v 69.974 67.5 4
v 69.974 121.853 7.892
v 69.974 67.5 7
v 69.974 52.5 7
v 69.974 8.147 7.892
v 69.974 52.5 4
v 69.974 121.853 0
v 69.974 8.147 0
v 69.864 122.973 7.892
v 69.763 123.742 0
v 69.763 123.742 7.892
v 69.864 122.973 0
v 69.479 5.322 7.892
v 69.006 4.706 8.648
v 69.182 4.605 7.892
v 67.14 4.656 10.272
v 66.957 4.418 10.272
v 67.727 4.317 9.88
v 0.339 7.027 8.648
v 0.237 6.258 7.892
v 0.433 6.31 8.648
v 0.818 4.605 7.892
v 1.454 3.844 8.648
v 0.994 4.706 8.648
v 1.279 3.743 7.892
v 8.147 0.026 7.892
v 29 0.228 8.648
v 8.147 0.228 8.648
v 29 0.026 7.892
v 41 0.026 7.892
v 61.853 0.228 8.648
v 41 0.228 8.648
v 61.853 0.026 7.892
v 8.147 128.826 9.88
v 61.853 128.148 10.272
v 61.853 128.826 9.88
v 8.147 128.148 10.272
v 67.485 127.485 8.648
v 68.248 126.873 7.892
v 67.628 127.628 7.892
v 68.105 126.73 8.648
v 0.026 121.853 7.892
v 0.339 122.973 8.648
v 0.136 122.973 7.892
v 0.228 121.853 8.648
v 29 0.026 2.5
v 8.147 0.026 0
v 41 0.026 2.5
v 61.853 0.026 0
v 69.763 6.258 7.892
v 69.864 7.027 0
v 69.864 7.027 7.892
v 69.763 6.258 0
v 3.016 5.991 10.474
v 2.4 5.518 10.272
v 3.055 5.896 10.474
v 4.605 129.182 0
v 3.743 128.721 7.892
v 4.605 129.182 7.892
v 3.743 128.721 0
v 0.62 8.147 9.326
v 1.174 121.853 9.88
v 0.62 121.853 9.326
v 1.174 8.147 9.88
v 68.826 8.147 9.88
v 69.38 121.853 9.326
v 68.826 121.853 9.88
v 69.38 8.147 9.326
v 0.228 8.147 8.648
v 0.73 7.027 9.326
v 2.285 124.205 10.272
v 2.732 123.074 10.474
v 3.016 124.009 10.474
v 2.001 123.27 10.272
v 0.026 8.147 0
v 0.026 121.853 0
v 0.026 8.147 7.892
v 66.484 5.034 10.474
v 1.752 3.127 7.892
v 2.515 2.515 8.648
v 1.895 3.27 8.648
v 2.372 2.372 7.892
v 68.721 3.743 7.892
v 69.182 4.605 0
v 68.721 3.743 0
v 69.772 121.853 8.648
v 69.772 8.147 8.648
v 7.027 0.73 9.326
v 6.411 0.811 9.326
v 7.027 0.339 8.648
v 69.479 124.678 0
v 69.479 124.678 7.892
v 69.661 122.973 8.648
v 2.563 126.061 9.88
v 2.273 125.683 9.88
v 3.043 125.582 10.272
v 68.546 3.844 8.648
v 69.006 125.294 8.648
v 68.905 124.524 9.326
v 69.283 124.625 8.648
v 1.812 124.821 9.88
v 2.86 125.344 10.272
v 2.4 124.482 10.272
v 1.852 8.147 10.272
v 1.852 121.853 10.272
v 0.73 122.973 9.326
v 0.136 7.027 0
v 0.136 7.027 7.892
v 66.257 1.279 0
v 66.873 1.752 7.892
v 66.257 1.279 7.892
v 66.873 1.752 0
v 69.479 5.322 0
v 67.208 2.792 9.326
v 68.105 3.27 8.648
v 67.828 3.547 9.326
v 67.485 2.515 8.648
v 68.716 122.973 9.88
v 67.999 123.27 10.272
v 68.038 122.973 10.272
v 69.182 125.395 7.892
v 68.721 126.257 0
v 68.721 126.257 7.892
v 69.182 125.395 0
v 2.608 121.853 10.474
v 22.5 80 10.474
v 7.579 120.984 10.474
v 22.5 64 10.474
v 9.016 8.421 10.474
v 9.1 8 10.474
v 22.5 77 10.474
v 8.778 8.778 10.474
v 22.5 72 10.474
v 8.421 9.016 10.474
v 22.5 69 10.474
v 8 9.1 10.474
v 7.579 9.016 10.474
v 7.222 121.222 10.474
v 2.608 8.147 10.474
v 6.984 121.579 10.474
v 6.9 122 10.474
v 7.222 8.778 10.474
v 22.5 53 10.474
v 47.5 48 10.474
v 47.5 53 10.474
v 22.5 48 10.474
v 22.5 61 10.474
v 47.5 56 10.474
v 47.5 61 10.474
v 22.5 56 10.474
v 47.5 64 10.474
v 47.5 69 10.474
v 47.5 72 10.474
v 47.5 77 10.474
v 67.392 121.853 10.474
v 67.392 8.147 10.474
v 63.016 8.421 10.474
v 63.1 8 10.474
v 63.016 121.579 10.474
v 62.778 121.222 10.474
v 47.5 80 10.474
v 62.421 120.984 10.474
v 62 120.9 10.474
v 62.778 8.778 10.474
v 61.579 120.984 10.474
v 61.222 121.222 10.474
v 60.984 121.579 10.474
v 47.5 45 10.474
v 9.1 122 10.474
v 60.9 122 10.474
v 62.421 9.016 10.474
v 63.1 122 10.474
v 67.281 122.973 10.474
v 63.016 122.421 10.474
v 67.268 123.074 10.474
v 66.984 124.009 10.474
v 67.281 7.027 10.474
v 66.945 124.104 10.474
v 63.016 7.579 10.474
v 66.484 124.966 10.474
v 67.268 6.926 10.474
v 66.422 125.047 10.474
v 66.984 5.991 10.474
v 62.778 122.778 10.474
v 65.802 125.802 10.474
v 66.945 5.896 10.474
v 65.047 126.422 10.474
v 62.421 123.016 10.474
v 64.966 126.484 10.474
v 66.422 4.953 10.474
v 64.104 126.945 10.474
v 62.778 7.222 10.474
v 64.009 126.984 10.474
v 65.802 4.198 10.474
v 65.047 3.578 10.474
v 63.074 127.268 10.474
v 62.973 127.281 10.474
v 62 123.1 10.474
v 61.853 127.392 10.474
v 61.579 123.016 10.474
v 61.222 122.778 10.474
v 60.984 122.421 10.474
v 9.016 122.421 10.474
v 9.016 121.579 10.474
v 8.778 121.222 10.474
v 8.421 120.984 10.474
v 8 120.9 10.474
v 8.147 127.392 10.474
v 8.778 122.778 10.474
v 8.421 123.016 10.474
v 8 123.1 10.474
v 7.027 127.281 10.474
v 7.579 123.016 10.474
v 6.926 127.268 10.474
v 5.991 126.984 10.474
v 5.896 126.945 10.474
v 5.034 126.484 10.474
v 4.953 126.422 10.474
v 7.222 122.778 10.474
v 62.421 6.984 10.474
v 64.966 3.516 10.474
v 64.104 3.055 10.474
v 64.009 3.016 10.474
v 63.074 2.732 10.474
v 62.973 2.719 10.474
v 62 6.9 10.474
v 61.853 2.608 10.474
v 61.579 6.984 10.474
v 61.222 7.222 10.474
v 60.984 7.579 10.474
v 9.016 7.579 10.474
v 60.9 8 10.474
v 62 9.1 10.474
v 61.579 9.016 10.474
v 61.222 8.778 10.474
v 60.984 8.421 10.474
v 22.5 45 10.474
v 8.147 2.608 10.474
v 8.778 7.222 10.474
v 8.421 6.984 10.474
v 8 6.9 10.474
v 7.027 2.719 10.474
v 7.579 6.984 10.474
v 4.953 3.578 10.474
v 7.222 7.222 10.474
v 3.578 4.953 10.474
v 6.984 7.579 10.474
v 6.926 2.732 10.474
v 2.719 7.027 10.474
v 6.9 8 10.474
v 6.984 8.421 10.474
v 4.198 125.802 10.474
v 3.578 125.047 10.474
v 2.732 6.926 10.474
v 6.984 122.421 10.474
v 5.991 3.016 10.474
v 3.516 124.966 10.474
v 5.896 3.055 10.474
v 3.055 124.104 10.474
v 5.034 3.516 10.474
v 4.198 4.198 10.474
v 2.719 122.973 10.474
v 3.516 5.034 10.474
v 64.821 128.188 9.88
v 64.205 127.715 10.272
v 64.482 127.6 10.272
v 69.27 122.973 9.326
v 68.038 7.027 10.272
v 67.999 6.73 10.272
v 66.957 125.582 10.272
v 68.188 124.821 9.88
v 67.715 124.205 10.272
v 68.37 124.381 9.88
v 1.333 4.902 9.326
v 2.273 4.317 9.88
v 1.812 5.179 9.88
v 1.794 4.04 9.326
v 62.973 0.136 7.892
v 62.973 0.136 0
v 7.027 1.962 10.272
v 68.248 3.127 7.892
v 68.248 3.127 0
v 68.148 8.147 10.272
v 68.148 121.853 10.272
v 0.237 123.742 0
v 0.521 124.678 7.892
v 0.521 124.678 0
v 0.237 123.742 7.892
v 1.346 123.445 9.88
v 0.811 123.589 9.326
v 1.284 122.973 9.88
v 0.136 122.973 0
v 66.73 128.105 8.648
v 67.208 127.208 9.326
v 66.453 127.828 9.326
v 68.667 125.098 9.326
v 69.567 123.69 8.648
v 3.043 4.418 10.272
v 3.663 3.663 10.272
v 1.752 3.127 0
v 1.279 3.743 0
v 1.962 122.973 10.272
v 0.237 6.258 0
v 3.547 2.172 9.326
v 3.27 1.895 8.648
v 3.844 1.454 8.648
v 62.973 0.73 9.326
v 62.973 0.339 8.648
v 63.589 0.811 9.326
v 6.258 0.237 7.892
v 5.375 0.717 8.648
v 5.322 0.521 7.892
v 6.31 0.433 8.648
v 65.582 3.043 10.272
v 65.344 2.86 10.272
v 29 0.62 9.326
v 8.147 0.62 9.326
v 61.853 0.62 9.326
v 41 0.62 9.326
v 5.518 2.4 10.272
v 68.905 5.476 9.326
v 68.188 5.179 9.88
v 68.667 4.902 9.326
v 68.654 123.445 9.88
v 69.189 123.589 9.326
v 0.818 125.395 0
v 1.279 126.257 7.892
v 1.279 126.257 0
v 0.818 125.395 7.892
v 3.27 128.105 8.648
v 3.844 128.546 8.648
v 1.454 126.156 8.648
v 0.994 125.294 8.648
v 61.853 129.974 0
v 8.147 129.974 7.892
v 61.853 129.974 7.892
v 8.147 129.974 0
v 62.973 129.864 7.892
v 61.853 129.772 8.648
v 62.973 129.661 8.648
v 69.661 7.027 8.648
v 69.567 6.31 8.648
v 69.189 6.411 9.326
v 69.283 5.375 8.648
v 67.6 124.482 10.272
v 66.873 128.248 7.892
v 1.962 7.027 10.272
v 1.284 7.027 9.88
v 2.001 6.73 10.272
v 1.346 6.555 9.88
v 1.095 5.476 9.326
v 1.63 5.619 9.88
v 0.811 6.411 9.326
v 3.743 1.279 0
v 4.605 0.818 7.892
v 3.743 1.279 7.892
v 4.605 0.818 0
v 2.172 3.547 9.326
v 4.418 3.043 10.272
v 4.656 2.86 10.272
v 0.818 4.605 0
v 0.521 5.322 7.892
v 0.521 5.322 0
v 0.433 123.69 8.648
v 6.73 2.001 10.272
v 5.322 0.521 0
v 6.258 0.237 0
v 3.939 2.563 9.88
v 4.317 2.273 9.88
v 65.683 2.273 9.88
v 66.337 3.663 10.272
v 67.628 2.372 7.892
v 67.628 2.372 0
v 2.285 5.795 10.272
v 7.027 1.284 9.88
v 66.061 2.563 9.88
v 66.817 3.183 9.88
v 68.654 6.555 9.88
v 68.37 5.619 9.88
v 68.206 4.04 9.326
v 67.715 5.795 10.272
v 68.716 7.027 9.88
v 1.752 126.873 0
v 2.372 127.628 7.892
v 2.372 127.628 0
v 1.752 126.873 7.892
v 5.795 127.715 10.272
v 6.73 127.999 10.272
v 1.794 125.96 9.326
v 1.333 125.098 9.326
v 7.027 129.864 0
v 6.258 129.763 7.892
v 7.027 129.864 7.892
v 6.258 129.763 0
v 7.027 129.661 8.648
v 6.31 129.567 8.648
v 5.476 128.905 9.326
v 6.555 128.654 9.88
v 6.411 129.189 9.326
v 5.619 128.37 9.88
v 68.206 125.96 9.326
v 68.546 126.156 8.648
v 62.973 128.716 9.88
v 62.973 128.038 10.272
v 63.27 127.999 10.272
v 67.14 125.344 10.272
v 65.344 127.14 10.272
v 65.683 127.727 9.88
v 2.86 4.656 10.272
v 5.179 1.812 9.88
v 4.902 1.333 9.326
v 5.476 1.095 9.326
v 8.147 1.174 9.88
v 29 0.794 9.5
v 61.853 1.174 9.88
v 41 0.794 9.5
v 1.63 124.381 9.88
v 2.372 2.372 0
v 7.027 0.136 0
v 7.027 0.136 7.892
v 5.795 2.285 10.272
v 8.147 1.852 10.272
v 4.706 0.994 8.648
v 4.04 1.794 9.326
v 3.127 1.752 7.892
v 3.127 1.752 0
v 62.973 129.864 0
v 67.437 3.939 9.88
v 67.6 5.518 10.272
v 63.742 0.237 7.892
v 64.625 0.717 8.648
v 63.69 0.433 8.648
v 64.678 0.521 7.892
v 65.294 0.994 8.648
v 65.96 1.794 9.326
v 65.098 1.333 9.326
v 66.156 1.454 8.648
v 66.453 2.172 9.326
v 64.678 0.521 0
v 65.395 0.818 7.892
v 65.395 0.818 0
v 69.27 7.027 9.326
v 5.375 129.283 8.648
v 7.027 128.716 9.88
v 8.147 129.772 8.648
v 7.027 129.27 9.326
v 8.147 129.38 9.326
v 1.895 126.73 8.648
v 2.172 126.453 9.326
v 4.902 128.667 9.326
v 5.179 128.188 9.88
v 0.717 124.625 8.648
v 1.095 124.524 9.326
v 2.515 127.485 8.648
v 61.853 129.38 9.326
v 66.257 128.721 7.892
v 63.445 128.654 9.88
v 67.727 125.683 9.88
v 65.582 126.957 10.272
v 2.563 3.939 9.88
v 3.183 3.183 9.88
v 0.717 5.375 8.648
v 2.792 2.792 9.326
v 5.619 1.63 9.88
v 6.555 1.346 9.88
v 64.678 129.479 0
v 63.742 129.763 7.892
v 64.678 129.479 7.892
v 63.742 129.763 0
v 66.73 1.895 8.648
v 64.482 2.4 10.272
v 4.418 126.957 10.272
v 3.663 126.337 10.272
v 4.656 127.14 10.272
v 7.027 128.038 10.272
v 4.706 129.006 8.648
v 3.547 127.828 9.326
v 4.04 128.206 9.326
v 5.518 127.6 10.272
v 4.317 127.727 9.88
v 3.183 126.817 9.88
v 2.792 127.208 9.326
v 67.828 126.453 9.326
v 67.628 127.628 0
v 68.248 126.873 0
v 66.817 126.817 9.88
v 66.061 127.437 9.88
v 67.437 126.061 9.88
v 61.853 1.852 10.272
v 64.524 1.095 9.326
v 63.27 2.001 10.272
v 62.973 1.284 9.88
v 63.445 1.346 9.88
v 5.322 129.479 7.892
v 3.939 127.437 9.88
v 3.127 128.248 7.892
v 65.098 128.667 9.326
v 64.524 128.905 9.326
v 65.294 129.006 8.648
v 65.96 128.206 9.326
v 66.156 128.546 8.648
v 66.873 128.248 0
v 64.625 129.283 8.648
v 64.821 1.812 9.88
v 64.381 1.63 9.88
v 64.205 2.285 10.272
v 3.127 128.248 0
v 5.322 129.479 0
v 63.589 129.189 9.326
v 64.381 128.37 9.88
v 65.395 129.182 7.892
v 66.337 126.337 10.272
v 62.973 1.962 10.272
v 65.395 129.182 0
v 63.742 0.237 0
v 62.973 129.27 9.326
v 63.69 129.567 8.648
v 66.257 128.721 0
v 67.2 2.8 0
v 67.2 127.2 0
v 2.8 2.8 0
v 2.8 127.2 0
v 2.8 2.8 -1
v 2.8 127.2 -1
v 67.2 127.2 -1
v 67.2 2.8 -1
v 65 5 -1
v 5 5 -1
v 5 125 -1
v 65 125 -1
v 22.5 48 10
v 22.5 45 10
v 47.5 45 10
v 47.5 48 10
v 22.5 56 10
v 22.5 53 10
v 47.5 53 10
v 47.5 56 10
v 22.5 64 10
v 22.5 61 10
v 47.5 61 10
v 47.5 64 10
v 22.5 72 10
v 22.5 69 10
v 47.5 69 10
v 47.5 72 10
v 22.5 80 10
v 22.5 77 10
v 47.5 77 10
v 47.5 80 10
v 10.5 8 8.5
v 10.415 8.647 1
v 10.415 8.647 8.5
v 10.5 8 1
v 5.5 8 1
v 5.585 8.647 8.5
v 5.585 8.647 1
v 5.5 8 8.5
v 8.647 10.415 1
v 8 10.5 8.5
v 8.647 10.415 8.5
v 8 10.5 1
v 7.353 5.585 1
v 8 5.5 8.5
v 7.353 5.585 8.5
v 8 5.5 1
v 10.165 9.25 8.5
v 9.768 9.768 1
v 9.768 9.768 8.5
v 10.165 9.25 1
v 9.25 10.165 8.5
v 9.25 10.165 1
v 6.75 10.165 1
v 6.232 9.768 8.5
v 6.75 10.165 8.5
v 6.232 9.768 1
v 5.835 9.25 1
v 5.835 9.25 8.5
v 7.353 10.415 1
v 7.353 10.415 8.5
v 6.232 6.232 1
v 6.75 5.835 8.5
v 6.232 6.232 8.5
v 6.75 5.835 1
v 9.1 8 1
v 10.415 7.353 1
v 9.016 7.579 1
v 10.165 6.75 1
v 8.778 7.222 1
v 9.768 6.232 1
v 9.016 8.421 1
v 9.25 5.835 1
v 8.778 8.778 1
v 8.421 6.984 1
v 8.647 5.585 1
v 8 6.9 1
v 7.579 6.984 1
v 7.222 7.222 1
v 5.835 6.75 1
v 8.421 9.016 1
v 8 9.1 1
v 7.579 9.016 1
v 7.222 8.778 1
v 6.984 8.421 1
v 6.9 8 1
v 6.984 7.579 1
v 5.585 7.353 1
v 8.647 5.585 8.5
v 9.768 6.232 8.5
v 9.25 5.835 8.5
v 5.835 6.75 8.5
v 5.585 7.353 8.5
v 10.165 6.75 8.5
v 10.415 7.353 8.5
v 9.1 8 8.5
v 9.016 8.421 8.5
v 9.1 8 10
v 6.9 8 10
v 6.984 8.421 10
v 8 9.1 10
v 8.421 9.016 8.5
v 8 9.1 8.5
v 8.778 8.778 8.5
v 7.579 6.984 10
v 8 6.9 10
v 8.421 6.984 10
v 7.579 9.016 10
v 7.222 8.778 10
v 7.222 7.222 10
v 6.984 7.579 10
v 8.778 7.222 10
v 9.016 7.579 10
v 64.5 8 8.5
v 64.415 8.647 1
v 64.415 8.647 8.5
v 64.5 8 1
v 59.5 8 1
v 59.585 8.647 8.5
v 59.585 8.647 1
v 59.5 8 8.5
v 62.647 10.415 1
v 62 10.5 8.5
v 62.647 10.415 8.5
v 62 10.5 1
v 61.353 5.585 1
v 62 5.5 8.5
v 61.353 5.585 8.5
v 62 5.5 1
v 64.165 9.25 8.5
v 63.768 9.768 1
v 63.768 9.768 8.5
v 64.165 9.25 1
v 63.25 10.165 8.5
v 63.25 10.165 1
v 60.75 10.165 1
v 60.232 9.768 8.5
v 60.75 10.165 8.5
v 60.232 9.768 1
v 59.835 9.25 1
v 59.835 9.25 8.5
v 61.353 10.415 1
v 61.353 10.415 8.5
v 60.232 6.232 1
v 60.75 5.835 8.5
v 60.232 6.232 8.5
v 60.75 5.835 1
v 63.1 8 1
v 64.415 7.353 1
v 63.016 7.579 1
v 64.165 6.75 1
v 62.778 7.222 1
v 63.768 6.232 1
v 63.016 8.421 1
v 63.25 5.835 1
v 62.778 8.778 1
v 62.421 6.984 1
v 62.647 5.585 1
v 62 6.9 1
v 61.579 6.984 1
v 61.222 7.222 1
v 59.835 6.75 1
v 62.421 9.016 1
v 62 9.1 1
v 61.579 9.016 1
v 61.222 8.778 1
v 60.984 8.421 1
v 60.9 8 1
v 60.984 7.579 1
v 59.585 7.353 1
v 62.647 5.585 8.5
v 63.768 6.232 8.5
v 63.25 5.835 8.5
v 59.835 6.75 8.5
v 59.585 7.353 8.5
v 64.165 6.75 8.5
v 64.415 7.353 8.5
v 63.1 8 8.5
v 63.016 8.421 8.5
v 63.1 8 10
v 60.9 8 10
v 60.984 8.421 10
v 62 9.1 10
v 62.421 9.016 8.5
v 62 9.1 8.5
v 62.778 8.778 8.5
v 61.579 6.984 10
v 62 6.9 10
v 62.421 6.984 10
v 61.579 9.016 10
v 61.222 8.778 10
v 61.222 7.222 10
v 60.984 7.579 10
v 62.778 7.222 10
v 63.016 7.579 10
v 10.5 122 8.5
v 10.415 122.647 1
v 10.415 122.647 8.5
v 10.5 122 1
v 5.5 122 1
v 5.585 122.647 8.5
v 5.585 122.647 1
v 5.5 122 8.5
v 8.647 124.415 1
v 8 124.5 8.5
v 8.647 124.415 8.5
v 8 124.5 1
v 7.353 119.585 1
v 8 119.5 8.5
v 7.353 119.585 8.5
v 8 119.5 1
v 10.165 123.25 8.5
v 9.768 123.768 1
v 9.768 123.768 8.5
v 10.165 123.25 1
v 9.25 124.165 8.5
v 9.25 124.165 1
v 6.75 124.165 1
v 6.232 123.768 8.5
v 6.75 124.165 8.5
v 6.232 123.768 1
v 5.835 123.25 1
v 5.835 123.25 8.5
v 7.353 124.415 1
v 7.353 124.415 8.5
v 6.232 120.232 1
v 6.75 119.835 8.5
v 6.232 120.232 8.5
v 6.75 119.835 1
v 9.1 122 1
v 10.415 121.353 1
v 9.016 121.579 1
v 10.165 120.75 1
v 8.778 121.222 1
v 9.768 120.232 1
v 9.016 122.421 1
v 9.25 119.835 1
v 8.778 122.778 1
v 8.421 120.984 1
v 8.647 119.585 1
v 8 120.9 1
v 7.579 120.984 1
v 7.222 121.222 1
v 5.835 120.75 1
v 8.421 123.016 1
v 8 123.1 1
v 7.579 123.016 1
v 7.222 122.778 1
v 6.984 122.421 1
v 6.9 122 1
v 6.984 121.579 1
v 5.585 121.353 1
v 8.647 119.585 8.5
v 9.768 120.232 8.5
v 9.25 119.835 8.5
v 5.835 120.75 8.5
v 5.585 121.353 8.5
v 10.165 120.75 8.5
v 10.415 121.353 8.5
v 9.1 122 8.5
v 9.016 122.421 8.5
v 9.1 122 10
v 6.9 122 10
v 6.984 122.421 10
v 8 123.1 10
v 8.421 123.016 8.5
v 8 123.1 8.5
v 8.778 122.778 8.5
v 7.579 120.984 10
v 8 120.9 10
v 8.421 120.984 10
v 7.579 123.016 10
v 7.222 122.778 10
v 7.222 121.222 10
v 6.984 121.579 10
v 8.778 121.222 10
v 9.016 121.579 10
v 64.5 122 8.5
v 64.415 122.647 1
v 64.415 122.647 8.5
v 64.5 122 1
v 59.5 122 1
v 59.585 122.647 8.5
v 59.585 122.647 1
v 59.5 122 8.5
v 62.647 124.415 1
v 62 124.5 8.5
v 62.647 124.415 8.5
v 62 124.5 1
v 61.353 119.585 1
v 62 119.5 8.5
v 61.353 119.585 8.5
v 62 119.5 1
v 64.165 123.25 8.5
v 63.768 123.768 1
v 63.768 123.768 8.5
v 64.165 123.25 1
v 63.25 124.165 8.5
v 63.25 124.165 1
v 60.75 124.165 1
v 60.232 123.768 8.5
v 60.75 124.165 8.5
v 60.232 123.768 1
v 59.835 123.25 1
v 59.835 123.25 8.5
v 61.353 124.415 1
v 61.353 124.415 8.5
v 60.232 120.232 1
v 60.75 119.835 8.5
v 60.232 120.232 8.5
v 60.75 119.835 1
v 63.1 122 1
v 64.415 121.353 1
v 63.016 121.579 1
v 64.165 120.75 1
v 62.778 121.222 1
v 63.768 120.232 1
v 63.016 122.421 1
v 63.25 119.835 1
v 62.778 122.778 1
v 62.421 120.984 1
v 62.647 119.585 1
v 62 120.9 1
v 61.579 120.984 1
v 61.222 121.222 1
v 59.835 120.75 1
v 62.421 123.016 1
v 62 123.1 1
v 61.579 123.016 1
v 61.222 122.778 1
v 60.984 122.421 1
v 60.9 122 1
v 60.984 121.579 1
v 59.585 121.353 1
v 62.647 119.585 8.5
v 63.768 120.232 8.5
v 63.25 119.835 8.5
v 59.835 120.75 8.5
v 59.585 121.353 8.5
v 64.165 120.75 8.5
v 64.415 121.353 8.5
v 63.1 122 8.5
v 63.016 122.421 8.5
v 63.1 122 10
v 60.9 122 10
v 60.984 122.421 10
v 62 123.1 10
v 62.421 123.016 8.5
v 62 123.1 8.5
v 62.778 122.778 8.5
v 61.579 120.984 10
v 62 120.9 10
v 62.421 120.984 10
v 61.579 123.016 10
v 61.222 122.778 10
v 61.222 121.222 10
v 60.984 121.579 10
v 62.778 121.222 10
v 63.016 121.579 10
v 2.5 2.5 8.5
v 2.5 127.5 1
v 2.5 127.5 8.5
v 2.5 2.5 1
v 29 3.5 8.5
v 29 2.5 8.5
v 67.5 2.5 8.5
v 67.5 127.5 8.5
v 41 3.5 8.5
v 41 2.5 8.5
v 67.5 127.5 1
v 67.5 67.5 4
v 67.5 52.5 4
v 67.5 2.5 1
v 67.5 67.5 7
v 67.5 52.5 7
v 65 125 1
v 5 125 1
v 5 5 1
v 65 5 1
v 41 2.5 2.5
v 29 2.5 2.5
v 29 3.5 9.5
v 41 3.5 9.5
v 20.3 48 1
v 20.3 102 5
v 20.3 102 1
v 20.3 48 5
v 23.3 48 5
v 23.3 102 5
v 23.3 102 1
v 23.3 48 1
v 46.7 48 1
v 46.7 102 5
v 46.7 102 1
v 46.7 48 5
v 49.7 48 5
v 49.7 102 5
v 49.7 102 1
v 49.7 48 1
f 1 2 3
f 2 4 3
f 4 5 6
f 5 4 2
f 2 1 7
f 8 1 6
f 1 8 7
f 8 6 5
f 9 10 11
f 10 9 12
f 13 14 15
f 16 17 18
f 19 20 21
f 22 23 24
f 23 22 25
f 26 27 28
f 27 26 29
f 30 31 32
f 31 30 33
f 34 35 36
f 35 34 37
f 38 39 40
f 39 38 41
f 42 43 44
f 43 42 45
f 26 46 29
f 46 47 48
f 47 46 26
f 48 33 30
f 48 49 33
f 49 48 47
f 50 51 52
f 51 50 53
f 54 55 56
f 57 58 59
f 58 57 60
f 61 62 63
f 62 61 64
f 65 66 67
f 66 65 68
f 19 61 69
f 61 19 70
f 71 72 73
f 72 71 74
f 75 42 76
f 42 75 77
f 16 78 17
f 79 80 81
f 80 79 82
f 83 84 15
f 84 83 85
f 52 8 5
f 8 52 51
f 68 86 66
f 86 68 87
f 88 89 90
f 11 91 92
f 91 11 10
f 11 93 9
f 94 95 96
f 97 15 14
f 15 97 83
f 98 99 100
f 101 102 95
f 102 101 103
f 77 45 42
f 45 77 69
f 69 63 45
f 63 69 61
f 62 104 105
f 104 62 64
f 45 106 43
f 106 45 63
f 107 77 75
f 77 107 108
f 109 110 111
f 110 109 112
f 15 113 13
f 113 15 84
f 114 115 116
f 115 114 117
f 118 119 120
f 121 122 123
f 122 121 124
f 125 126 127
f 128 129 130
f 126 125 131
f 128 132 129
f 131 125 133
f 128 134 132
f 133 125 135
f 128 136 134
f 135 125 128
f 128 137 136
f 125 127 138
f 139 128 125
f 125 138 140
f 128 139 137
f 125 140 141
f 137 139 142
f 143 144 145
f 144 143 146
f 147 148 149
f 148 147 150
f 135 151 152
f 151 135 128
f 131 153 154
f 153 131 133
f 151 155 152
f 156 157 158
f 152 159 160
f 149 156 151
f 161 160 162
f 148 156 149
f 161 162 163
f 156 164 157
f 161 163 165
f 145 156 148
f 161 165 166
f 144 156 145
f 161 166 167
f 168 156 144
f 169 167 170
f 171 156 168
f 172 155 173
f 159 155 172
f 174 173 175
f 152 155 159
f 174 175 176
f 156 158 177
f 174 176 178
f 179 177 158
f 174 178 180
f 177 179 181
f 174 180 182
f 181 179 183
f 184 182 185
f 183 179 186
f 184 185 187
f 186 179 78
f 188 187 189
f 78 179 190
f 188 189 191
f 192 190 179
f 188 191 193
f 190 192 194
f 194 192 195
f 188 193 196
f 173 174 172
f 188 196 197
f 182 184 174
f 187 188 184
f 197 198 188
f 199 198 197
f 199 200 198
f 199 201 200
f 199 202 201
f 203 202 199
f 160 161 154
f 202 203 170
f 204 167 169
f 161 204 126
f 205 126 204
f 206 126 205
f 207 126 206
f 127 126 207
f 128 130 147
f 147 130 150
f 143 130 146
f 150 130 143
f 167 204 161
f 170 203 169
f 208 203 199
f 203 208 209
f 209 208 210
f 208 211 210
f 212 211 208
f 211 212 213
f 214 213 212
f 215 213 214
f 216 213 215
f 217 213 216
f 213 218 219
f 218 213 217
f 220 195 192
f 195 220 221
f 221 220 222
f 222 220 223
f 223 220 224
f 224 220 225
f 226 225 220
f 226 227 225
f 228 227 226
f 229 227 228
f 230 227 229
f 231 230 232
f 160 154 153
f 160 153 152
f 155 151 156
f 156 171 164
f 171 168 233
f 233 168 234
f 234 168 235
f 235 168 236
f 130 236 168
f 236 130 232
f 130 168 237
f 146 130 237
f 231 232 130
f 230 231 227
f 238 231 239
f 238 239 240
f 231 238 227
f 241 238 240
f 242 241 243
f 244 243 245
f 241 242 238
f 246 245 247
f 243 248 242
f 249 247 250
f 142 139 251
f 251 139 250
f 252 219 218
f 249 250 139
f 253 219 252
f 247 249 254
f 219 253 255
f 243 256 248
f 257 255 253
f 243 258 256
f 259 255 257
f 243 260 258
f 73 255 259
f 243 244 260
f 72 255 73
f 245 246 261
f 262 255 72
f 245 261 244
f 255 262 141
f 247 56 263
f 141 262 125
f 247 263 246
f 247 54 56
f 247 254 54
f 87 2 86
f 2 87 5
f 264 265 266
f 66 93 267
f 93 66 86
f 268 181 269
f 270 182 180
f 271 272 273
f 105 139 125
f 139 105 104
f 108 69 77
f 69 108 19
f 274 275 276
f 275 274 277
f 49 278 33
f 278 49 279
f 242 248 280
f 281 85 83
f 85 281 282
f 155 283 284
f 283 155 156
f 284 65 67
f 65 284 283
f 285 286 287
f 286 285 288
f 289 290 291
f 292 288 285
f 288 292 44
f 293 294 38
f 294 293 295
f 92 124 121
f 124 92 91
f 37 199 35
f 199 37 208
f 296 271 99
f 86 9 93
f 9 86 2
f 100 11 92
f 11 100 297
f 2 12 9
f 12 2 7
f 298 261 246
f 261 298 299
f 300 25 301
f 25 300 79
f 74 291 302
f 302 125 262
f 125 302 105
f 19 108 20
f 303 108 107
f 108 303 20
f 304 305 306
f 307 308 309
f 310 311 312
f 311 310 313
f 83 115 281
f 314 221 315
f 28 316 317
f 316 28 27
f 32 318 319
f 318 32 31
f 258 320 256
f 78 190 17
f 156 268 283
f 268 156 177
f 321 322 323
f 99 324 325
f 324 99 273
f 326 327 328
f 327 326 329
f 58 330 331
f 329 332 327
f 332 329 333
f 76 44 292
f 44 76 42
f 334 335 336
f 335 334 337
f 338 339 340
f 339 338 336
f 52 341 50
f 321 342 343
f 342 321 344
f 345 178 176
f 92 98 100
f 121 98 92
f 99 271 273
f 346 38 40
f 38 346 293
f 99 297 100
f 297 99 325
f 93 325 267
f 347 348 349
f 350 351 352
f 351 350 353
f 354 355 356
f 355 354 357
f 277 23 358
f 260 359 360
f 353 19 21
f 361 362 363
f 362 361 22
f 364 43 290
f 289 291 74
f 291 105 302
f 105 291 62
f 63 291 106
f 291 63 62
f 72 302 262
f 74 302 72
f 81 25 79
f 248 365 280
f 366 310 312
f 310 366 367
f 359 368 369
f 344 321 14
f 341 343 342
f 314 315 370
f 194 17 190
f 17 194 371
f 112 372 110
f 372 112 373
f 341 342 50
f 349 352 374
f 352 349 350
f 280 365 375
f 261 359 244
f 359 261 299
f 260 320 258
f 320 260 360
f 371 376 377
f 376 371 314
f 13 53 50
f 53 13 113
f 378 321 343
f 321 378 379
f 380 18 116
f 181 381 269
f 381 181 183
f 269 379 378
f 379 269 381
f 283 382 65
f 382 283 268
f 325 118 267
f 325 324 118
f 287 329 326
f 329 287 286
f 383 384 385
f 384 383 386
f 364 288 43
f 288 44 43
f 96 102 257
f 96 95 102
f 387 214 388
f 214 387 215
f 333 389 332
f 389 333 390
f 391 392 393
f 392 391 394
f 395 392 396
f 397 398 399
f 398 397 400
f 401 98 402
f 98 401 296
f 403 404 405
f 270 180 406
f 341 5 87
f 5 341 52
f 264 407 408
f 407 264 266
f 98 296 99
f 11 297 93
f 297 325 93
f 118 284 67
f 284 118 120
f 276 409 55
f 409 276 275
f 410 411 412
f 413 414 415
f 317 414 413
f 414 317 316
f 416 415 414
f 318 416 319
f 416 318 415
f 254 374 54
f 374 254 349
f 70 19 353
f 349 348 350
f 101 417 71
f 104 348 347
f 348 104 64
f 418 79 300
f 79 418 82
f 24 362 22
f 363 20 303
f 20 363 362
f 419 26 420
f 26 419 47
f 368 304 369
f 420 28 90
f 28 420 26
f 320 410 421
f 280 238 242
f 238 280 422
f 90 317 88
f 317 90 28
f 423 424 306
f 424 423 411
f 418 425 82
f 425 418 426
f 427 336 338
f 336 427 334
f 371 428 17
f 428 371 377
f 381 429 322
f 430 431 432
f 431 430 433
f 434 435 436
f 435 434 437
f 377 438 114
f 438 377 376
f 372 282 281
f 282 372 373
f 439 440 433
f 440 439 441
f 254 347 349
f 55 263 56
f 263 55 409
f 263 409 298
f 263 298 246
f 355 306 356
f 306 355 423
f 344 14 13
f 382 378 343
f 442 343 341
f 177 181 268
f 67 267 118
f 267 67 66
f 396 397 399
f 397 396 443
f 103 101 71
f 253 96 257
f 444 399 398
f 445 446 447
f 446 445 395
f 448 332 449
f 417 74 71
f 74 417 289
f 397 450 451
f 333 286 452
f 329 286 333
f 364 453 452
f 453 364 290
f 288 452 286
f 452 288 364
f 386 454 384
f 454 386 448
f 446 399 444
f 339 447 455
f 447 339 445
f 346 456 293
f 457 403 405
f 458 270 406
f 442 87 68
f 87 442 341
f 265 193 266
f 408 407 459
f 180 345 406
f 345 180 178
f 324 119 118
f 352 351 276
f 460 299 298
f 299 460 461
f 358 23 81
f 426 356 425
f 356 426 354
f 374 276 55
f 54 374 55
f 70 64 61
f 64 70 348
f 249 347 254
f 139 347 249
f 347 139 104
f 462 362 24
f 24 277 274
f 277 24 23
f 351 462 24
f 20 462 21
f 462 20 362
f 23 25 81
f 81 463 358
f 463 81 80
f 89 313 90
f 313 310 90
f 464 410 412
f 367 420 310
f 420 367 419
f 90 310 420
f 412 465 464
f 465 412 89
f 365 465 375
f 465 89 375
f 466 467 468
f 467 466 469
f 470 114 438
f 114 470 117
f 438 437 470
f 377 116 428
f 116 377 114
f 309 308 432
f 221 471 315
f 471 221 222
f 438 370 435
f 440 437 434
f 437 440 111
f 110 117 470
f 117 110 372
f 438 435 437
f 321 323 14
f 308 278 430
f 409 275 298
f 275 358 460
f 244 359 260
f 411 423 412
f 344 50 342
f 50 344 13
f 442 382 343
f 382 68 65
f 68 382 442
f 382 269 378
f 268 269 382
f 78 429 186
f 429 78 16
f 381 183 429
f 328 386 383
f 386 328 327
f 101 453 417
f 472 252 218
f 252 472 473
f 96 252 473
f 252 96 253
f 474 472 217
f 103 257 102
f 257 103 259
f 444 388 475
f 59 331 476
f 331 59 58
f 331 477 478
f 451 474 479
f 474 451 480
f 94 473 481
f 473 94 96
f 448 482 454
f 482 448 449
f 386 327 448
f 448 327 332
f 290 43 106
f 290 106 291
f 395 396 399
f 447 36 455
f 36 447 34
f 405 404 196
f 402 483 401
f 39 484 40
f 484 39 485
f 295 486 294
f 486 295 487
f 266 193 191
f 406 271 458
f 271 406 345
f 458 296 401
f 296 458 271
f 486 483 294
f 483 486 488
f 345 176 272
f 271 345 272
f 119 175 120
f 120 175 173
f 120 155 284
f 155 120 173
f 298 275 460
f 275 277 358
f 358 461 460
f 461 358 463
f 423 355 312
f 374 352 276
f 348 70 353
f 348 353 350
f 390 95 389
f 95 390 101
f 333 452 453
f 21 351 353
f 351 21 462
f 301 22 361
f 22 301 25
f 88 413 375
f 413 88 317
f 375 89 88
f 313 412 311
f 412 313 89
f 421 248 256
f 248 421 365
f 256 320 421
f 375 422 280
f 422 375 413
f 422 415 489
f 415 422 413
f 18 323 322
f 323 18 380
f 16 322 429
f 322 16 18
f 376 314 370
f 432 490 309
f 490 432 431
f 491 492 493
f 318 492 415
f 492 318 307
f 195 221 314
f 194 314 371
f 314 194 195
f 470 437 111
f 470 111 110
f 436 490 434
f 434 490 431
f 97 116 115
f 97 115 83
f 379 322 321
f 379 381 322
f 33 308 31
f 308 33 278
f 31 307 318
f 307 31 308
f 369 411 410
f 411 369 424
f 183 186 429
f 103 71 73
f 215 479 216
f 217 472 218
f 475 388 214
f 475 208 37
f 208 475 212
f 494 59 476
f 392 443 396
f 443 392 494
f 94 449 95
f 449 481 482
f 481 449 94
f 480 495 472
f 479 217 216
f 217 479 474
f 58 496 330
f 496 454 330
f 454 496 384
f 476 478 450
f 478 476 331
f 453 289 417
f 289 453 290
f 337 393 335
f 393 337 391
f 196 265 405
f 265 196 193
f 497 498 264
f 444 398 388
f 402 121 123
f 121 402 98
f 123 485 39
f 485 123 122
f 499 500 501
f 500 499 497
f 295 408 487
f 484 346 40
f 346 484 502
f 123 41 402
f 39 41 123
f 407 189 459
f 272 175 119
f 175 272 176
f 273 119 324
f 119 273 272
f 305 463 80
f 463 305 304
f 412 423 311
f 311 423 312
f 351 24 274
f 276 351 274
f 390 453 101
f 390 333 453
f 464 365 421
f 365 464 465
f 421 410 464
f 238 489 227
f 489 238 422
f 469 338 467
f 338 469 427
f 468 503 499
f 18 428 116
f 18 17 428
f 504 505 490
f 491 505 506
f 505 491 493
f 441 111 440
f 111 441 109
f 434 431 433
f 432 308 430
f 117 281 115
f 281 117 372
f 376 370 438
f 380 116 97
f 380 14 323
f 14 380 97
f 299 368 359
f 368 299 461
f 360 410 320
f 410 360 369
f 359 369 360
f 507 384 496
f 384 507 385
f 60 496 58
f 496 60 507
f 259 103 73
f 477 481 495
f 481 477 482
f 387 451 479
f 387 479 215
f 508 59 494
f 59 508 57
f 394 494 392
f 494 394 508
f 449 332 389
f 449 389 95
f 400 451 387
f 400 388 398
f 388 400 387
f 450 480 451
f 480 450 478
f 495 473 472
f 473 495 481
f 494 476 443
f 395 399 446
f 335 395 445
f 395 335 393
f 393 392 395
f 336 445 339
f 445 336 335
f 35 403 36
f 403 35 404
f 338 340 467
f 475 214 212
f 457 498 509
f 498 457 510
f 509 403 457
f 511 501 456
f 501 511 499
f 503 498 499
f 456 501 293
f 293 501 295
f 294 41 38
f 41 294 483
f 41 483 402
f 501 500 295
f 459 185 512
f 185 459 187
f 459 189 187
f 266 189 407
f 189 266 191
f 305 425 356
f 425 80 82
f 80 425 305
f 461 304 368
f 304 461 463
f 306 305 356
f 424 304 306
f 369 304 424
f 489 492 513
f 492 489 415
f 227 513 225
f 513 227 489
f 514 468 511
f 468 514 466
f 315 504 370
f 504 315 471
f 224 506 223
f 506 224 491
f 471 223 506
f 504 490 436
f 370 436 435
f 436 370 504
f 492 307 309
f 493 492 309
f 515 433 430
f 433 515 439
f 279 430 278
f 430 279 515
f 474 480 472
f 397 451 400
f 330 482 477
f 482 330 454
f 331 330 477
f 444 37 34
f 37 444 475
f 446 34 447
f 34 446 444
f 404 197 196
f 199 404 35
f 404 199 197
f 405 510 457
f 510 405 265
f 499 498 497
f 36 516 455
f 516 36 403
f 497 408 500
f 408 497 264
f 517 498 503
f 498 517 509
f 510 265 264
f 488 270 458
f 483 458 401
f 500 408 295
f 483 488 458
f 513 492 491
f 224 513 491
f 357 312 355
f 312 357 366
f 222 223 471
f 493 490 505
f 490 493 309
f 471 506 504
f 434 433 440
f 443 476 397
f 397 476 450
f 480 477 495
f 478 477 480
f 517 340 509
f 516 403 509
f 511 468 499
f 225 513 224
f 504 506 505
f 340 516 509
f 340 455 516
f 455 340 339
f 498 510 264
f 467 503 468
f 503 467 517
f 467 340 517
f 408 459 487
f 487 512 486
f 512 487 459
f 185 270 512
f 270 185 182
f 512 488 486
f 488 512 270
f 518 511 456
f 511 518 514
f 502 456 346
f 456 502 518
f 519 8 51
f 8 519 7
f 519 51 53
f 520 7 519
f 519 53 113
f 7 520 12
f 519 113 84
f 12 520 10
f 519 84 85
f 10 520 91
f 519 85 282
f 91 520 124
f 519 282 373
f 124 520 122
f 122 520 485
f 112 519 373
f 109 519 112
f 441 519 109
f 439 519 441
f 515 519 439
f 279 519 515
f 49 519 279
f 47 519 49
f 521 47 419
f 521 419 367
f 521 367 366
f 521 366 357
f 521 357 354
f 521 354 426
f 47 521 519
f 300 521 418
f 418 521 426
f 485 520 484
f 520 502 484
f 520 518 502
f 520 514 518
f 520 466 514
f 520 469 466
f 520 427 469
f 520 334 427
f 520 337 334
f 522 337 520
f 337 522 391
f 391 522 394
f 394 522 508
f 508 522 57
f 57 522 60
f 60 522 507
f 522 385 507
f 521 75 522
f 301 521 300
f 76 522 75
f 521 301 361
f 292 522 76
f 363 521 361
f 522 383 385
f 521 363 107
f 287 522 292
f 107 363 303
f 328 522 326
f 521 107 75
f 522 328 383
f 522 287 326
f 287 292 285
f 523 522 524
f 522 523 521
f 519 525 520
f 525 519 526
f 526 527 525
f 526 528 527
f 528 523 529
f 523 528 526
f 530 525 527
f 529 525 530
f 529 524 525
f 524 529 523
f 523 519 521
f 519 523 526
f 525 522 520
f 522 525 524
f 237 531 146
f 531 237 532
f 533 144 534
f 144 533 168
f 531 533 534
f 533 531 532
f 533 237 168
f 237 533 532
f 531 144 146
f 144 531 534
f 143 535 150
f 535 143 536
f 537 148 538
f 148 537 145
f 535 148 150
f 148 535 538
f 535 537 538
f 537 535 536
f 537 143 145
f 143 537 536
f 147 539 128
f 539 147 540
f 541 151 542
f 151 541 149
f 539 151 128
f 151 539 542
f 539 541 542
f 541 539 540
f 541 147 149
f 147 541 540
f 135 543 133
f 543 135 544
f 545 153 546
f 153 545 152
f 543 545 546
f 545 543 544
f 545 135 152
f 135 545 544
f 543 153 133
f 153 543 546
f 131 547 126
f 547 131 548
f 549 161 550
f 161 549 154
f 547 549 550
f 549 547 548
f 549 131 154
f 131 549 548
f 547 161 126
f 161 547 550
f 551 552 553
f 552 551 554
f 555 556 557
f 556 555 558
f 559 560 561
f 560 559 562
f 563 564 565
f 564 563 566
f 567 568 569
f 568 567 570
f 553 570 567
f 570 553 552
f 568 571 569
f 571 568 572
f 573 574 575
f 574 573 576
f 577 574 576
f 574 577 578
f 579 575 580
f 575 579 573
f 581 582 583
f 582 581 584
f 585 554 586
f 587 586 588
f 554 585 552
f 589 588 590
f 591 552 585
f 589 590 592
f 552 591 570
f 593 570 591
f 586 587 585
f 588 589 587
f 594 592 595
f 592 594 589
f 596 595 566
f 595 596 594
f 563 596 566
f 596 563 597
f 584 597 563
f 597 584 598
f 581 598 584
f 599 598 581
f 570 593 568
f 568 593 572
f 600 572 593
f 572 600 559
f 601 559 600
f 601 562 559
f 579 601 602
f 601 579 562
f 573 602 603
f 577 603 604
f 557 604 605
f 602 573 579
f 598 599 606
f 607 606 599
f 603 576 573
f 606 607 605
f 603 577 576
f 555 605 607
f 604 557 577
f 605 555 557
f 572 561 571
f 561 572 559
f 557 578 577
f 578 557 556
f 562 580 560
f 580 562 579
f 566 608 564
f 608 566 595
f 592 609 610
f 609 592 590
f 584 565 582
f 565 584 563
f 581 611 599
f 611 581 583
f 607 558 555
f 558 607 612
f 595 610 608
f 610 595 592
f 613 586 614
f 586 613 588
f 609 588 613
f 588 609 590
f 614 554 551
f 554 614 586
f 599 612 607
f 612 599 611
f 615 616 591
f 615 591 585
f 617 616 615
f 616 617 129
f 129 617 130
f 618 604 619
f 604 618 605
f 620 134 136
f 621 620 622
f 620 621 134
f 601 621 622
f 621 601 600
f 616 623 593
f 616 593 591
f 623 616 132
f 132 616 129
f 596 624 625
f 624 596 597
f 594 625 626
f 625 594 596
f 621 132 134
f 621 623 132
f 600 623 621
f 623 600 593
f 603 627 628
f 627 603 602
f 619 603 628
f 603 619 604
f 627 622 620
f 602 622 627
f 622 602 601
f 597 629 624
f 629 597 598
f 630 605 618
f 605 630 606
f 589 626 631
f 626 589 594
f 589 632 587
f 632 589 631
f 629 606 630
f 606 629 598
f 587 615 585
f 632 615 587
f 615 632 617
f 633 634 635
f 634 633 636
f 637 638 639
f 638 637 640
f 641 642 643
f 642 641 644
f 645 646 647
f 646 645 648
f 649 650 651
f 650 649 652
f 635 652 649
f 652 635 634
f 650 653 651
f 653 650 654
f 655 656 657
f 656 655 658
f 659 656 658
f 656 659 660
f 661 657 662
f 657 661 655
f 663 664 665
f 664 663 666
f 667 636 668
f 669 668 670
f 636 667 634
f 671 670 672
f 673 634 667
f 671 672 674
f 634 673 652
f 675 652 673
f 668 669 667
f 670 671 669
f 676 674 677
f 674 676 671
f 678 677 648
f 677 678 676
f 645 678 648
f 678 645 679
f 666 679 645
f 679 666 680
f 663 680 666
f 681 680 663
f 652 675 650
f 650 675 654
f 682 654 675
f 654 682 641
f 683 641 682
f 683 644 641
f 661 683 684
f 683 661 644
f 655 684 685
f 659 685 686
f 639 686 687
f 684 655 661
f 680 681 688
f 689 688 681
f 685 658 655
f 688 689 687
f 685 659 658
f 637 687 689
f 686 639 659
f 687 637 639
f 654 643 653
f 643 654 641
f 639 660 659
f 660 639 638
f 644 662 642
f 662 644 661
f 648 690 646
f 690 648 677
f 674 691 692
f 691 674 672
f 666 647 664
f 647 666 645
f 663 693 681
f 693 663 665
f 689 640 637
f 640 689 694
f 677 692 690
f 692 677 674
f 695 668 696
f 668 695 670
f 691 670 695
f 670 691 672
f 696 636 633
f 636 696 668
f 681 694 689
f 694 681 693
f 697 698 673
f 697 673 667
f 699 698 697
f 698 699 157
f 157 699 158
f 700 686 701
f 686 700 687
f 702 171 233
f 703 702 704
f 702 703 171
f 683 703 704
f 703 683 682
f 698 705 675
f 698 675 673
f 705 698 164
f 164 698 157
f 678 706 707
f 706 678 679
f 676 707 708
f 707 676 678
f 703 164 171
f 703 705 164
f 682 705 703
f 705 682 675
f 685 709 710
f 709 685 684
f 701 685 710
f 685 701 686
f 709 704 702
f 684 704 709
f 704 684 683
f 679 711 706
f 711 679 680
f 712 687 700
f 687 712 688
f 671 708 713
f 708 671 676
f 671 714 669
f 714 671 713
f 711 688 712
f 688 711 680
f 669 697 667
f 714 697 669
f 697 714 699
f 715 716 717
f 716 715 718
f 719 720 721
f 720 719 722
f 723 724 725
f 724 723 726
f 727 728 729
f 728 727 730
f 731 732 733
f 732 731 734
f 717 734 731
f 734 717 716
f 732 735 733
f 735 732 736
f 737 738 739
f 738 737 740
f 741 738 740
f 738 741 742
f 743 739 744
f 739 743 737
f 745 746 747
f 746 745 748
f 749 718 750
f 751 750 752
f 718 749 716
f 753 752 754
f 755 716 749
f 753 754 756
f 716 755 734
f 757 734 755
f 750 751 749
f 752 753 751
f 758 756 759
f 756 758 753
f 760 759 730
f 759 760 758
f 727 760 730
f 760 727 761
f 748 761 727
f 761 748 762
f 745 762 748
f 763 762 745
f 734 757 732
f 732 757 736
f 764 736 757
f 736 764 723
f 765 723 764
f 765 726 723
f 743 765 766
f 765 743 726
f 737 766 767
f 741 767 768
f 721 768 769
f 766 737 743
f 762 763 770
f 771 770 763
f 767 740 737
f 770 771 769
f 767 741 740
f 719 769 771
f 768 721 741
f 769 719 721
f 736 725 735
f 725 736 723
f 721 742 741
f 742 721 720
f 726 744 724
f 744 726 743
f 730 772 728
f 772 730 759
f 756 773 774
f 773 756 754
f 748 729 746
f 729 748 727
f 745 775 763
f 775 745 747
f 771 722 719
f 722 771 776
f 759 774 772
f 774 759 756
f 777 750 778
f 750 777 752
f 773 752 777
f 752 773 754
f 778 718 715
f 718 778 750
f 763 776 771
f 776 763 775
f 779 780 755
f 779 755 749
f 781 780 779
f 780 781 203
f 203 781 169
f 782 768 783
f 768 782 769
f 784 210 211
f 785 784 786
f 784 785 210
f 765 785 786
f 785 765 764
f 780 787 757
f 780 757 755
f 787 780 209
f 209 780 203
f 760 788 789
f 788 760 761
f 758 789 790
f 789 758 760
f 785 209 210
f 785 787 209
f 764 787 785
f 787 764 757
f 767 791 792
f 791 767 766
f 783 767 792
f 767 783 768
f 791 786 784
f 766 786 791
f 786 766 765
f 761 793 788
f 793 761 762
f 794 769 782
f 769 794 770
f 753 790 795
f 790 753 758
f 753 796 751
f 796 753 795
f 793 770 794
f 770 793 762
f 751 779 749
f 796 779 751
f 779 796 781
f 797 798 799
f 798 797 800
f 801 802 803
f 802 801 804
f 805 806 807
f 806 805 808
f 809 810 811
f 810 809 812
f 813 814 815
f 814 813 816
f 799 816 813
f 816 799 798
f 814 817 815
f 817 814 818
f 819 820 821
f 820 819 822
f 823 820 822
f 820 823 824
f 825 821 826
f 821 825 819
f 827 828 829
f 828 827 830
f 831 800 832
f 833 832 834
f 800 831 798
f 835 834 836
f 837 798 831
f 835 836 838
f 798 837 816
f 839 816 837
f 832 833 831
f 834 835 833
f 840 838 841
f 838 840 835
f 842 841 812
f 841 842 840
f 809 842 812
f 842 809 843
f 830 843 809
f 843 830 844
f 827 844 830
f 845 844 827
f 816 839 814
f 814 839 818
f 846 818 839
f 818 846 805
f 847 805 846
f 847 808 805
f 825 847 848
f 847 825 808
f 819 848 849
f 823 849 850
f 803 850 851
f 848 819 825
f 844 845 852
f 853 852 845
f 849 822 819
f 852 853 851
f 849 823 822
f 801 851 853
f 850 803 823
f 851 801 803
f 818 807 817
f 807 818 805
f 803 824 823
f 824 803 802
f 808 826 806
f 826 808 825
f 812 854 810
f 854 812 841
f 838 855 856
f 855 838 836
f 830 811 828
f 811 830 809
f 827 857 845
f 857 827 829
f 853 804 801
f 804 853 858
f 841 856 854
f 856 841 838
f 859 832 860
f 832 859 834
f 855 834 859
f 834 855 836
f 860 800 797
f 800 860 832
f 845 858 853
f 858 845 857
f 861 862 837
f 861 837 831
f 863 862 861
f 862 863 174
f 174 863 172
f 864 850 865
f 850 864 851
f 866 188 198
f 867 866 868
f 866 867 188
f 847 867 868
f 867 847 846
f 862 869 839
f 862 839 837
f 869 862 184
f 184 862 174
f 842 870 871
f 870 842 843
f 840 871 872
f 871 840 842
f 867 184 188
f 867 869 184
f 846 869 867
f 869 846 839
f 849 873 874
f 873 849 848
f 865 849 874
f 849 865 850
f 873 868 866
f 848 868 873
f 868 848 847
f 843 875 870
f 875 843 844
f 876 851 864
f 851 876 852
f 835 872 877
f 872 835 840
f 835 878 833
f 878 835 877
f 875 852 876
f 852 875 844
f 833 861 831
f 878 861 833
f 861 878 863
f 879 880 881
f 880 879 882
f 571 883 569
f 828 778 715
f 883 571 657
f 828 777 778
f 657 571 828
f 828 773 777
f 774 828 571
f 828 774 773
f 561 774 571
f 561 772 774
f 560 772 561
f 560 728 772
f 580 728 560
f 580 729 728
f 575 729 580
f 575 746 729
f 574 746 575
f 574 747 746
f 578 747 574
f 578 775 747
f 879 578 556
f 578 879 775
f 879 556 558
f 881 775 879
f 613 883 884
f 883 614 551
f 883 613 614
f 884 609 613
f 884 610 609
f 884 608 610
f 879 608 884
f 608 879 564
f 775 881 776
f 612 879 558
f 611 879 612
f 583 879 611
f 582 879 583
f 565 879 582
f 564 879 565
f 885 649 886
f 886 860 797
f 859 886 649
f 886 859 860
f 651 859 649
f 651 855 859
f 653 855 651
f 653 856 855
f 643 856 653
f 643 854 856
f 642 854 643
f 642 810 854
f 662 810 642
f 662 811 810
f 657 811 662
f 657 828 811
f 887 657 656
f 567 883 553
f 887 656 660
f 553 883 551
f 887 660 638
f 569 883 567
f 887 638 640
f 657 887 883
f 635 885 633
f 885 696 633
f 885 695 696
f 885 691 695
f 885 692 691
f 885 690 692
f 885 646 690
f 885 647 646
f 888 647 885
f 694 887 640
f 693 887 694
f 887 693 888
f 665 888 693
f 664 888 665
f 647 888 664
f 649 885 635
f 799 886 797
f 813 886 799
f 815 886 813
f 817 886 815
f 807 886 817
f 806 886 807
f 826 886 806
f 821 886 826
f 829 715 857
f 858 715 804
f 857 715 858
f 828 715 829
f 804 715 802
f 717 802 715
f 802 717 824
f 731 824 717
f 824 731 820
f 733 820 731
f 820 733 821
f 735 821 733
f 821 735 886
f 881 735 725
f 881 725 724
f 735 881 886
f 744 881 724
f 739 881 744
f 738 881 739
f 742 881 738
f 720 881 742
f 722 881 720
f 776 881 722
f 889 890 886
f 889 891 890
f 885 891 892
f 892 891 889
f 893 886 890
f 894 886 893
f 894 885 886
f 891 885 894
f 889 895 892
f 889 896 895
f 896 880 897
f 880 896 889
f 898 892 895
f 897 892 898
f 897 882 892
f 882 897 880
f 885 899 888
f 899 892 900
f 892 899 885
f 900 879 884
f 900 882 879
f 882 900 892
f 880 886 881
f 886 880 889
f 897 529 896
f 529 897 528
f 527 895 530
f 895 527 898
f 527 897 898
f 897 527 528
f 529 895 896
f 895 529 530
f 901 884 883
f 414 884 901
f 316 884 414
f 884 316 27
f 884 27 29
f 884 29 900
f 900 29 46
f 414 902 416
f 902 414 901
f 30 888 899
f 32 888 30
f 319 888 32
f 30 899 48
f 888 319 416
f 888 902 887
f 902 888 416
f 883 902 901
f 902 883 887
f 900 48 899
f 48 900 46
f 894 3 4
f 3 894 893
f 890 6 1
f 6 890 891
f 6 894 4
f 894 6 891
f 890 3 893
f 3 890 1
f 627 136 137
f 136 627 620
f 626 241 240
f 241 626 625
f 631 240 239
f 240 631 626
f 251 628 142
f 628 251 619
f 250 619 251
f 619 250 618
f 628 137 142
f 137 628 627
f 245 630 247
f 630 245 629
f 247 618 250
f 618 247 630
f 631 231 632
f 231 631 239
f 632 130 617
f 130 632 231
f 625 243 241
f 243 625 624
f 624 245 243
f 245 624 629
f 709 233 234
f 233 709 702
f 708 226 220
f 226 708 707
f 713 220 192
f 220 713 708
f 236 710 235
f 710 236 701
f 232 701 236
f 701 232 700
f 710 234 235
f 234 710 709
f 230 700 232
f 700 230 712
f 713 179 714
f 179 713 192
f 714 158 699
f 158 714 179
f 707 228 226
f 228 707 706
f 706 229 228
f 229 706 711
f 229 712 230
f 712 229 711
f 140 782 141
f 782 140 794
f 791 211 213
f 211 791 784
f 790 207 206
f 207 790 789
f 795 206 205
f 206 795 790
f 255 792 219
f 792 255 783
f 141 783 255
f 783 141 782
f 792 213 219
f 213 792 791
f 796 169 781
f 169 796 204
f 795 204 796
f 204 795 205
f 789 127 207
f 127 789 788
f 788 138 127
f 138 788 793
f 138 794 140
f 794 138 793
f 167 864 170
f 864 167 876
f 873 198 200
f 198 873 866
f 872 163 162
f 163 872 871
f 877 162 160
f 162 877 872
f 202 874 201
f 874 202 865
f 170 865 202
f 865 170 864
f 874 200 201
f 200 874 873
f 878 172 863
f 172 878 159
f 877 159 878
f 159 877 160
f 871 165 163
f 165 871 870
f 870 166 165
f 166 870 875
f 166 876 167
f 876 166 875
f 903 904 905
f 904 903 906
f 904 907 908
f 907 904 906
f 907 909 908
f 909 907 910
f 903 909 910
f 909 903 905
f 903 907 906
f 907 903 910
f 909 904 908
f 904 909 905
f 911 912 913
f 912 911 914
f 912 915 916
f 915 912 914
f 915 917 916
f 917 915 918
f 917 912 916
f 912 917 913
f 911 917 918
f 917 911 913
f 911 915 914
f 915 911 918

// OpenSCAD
// =============================================================================
// Base Station Handheld - BACK SHELL ONLY
// Ready to export as STL - prints back DOWN
// =============================================================================

// -----------------------------------------------------------------------------
// PARAMETERS (must match front shell!)
// -----------------------------------------------------------------------------

body_width = 70;
body_length = 130;
body_depth = 25;
wall = 2.5;
corner_radius = 8;
edge_radius = 3;
shell_tolerance = 0.3;
lip_depth = 2;

// Components
usbc_width = 12;
usbc_height = 7;

sd_slot_w = 15;
sd_slot_h = 3;
sd_pos_y = 60;

esp32_length = 54;
esp32_width = 25.4;

post_dia = 5;
post_hole_dia = 2.2;

// Calculated
inner_width = body_width - wall*2;
inner_length = body_length - wall*2;
half_depth = body_depth / 2;

// -----------------------------------------------------------------------------
// MODULES
// -----------------------------------------------------------------------------

module rounded_rect_2d(w, l, r) {
    hull() {
        translate([r, r]) circle(r=r, $fn=32);
        translate([w-r, r]) circle(r=r, $fn=32);
        translate([r, l-r]) circle(r=r, $fn=32);
        translate([w-r, l-r]) circle(r=r, $fn=32);
    }
}

module rounded_body(w, l, d, corner_r, edge_r) {
    minkowski() {
        linear_extrude(height=d - edge_r*2)
            offset(r=-edge_r)
                rounded_rect_2d(w, l, corner_r);
        sphere(r=edge_r, $fn=24);
    }
}

module mounting_post(height, outer_d, inner_d) {
    difference() {
        cylinder(h=height, d=outer_d, $fn=24);
        translate([0, 0, -1])
            cylinder(h=height+2, d=inner_d, $fn=16);
    }
}

// -----------------------------------------------------------------------------
// BACK SHELL
// -----------------------------------------------------------------------------

module back_shell() {
    difference() {
        union() {
            intersection() {
                rounded_body(body_width, body_length, body_depth, corner_radius, edge_radius);
                translate([-1, -1, half_depth - 1])
                    cube([body_width+2, body_length+2, half_depth + 2]);
            }

            // Alignment lip
            translate([wall + shell_tolerance, wall + shell_tolerance, half_depth - lip_depth])
                cube([inner_width - shell_tolerance*2, inner_length - shell_tolerance*2, lip_depth]);
        }

        // Hollow inside (stops at back wall - keeps back enclosed)
        translate([wall, wall, half_depth])
            cube([inner_width, inner_length, half_depth - wall*2]);

        // Lip interior
        translate([wall*2, wall*2, half_depth - lip_depth - 1])
            cube([inner_width - wall*2, inner_length - wall*2, lip_depth + 2]);

        // USB-C port (bottom)
        translate([body_width/2 - usbc_width/2, -1, half_depth + (half_depth-wall)/2 - usbc_height/2])
            cube([usbc_width, wall + 2, usbc_height]);

        // SD card slot (right side)
        translate([body_width - wall - 1, sd_pos_y - sd_slot_w/2, half_depth + 3])
            cube([wall + 2, sd_slot_w, sd_slot_h]);

        // Ventilation
        vent_count = 5;
        vent_spacing = 8;
        vent_length = 25;
        for (i = [0:vent_count-1]) {
            translate([body_width/2 - vent_length/2,
                       body_length/2 - (vent_count * vent_spacing)/2 + i * vent_spacing,
                       body_depth - wall - 1])
                cube([vent_length, 3, wall + 2]);
        }

        // Screw holes
        screw_inset = 8;
        translate([screw_inset, screw_inset, half_depth - 1])
            cylinder(h=half_depth + 2, d=post_hole_dia, $fn=16);
        translate([body_width - screw_inset, screw_inset, half_depth - 1])
            cylinder(h=half_depth + 2, d=post_hole_dia, $fn=16);
        translate([screw_inset, body_length - screw_inset, half_depth - 1])
            cylinder(h=half_depth + 2, d=post_hole_dia, $fn=16);
        translate([body_width - screw_inset, body_length - screw_inset, half_depth - 1])
            cylinder(h=half_depth + 2, d=post_hole_dia, $fn=16);
    }

    // Mounting posts
    screw_inset = 8;
    post_h = half_depth - wall - 1;

    translate([screw_inset, screw_inset, half_depth])
        mounting_post(post_h, post_dia, post_hole_dia);
    translate([body_width - screw_inset, screw_inset, half_depth])
        mounting_post(post_h, post_dia, post_hole_dia);
    translate([screw_inset, body_length - screw_inset, half_depth])
        mounting_post(post_h, post_dia, post_hole_dia);
    translate([body_width - screw_inset, body_length - screw_inset, half_depth])
        mounting_post(post_h, post_dia, post_hole_dia);

    // ESP32 rails
    esp_x = body_width/2 - esp32_width/2;
    esp_y = body_length/2 - esp32_length/2 + 10;

    translate([esp_x - 2, esp_y, half_depth])
        cube([3, esp32_length, 4]);
    translate([esp_x + esp32_width - 1, esp_y, half_depth])
        cube([3, esp32_length, 4]);
}

// -----------------------------------------------------------------------------
// RENDER - Positioned for printing (back down on bed)
// -----------------------------------------------------------------------------

translate([0, 0, -half_depth + 1]) back_shell();
